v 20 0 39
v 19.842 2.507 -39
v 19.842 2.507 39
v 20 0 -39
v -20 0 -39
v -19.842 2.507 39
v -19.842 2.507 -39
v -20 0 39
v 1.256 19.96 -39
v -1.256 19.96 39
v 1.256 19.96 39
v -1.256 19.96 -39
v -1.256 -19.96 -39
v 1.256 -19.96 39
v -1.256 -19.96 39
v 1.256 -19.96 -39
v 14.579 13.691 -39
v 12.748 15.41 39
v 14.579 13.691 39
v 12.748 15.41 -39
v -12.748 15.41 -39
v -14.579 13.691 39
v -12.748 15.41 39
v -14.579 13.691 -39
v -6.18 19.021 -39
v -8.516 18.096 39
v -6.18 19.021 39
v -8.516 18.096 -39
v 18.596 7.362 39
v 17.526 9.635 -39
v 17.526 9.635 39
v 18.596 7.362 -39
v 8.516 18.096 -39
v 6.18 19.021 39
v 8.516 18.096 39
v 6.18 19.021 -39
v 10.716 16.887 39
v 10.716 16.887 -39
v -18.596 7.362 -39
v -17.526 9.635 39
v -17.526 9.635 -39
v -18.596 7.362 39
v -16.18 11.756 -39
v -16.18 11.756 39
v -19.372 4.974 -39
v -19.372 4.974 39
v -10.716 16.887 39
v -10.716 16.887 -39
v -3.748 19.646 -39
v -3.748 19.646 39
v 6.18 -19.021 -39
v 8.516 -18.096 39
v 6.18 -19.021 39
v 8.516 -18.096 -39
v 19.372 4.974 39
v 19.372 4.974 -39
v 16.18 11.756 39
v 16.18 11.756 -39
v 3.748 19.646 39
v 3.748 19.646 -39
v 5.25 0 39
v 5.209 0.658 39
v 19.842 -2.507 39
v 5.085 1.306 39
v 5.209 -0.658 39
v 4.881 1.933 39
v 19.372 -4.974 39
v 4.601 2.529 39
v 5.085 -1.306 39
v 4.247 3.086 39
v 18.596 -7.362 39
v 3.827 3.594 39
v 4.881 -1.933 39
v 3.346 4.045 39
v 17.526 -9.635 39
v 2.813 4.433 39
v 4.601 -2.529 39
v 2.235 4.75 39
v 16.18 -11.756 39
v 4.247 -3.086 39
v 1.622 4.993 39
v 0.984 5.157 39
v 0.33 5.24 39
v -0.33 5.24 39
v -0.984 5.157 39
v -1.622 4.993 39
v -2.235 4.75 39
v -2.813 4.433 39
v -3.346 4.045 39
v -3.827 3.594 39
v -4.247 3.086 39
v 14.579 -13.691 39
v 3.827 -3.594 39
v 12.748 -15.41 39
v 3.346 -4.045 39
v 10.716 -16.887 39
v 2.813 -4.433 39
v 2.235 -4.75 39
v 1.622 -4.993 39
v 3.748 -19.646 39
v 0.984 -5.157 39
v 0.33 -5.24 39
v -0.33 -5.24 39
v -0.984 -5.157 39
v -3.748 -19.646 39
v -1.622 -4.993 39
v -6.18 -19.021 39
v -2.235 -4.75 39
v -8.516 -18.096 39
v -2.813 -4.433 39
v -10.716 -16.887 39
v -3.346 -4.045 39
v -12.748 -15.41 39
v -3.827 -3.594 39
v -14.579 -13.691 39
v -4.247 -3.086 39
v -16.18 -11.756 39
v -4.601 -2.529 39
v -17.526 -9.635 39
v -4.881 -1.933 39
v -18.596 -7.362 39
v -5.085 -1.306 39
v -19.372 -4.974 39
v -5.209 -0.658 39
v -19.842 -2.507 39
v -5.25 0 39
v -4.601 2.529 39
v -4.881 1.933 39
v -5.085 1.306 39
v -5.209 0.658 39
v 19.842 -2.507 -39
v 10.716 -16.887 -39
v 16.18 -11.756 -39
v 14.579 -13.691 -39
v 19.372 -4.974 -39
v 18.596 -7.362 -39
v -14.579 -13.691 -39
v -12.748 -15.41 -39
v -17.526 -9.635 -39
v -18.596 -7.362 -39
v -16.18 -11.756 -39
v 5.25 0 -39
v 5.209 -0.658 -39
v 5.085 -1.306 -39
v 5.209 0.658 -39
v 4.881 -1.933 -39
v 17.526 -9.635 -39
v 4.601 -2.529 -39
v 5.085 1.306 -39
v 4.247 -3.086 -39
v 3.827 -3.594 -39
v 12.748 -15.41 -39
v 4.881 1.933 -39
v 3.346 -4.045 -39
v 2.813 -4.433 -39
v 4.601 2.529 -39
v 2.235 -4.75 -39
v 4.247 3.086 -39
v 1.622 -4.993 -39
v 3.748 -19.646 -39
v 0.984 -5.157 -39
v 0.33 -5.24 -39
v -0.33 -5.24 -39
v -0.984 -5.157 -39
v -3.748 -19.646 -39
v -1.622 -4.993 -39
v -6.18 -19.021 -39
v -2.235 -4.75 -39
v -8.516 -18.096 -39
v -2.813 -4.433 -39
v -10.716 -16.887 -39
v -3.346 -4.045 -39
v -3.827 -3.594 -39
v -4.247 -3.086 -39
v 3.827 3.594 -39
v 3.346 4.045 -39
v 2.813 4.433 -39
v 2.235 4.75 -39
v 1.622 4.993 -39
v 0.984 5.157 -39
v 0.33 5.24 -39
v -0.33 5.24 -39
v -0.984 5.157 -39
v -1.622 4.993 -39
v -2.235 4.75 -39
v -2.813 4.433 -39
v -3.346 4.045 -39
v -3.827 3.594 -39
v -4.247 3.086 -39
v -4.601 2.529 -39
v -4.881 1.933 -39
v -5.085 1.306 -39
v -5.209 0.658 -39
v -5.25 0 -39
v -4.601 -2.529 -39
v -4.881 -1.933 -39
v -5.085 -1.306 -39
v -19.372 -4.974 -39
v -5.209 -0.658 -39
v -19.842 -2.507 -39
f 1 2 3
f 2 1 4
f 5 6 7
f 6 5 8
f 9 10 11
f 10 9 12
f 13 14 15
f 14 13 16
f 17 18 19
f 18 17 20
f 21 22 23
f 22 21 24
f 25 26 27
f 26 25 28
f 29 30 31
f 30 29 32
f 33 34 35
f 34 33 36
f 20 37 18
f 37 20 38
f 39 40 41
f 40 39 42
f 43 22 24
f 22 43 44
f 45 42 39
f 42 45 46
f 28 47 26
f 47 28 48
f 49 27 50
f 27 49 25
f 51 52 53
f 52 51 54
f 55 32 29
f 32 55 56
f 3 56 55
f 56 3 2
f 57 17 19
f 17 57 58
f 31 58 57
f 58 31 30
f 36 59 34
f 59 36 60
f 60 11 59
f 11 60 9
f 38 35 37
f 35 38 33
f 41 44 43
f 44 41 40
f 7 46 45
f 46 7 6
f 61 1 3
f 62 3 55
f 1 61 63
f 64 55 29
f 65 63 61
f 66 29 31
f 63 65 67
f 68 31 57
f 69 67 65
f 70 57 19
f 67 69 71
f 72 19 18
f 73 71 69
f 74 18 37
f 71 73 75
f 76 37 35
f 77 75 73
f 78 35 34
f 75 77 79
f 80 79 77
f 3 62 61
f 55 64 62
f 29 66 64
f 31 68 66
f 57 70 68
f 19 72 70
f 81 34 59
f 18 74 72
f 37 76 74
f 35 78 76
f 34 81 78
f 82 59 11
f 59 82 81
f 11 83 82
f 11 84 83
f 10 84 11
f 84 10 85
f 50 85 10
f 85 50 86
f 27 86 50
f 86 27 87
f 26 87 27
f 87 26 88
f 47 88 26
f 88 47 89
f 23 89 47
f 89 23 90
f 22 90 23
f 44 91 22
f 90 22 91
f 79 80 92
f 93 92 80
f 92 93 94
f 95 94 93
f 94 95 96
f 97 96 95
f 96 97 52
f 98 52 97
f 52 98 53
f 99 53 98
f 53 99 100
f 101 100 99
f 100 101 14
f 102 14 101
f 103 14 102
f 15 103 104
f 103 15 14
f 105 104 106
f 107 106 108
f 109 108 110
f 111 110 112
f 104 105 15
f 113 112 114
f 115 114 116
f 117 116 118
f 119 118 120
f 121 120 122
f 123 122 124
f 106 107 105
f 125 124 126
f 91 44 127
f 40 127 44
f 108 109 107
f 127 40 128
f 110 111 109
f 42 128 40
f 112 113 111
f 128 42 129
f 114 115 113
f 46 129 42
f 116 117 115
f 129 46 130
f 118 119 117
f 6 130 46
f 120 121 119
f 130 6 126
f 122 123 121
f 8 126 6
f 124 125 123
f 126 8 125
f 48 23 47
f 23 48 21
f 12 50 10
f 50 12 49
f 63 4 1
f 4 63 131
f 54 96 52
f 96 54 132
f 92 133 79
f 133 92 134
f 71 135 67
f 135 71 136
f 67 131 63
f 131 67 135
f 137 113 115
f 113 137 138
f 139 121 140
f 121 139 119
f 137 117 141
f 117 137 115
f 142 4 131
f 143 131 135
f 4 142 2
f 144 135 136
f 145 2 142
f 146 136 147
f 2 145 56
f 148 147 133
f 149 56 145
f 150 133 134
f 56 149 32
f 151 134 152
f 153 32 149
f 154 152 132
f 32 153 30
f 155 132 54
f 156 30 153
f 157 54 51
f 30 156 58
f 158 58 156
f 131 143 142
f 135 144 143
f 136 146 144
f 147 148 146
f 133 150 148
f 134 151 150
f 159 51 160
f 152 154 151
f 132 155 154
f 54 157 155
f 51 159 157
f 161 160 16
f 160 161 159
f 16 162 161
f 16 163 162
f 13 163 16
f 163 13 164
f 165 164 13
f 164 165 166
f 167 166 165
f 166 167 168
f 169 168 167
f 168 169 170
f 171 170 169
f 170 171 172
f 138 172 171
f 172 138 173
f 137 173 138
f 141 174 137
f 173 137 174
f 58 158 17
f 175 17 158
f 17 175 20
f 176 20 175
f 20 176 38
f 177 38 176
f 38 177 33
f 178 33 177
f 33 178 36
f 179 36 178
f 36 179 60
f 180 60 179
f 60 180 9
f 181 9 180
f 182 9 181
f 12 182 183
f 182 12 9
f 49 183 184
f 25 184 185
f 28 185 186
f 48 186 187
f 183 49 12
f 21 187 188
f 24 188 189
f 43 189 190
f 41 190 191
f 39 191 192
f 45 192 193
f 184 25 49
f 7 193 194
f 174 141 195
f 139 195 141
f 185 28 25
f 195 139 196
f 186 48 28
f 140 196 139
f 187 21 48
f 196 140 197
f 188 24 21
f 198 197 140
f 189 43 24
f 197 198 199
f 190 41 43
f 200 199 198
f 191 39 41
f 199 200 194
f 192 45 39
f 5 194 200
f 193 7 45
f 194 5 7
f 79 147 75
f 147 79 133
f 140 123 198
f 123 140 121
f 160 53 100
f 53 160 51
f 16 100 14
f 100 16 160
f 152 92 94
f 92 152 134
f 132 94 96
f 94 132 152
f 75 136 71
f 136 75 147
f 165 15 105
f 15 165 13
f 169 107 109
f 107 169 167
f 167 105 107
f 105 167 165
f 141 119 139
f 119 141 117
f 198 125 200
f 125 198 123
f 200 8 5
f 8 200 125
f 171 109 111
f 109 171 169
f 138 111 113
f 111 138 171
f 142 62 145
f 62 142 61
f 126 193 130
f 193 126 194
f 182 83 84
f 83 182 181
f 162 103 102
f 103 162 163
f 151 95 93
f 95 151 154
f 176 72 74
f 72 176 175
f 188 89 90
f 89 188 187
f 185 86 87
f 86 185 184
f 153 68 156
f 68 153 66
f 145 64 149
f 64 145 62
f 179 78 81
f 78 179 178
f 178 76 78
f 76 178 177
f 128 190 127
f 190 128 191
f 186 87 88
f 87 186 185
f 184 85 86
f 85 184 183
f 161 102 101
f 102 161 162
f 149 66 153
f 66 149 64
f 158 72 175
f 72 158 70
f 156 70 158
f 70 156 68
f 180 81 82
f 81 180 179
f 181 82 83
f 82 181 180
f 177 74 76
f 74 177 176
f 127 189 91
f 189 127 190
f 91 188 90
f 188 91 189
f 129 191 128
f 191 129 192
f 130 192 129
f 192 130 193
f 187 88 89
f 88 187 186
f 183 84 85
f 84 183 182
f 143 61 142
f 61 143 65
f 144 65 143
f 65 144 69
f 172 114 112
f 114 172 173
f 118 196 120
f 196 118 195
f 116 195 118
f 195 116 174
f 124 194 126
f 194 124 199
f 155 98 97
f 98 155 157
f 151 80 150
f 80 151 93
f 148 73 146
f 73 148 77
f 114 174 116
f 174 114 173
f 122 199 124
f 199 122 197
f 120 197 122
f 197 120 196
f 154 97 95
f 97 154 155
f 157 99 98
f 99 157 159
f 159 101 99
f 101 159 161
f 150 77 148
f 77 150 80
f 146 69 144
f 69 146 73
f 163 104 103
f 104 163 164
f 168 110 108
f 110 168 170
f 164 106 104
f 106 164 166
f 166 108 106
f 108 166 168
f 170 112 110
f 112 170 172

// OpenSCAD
$fn = 50;


difference() {
	union() {
		translate(v = [0, 0, -39.0000000000]) {
			cylinder(h = 78, r = 20.0000000000);
		}
	}
	union() {
		translate(v = [0, 0, -100.0000000000]) {
			cylinder(h = 200, r = 5.2500000000);
		}
	}
}
